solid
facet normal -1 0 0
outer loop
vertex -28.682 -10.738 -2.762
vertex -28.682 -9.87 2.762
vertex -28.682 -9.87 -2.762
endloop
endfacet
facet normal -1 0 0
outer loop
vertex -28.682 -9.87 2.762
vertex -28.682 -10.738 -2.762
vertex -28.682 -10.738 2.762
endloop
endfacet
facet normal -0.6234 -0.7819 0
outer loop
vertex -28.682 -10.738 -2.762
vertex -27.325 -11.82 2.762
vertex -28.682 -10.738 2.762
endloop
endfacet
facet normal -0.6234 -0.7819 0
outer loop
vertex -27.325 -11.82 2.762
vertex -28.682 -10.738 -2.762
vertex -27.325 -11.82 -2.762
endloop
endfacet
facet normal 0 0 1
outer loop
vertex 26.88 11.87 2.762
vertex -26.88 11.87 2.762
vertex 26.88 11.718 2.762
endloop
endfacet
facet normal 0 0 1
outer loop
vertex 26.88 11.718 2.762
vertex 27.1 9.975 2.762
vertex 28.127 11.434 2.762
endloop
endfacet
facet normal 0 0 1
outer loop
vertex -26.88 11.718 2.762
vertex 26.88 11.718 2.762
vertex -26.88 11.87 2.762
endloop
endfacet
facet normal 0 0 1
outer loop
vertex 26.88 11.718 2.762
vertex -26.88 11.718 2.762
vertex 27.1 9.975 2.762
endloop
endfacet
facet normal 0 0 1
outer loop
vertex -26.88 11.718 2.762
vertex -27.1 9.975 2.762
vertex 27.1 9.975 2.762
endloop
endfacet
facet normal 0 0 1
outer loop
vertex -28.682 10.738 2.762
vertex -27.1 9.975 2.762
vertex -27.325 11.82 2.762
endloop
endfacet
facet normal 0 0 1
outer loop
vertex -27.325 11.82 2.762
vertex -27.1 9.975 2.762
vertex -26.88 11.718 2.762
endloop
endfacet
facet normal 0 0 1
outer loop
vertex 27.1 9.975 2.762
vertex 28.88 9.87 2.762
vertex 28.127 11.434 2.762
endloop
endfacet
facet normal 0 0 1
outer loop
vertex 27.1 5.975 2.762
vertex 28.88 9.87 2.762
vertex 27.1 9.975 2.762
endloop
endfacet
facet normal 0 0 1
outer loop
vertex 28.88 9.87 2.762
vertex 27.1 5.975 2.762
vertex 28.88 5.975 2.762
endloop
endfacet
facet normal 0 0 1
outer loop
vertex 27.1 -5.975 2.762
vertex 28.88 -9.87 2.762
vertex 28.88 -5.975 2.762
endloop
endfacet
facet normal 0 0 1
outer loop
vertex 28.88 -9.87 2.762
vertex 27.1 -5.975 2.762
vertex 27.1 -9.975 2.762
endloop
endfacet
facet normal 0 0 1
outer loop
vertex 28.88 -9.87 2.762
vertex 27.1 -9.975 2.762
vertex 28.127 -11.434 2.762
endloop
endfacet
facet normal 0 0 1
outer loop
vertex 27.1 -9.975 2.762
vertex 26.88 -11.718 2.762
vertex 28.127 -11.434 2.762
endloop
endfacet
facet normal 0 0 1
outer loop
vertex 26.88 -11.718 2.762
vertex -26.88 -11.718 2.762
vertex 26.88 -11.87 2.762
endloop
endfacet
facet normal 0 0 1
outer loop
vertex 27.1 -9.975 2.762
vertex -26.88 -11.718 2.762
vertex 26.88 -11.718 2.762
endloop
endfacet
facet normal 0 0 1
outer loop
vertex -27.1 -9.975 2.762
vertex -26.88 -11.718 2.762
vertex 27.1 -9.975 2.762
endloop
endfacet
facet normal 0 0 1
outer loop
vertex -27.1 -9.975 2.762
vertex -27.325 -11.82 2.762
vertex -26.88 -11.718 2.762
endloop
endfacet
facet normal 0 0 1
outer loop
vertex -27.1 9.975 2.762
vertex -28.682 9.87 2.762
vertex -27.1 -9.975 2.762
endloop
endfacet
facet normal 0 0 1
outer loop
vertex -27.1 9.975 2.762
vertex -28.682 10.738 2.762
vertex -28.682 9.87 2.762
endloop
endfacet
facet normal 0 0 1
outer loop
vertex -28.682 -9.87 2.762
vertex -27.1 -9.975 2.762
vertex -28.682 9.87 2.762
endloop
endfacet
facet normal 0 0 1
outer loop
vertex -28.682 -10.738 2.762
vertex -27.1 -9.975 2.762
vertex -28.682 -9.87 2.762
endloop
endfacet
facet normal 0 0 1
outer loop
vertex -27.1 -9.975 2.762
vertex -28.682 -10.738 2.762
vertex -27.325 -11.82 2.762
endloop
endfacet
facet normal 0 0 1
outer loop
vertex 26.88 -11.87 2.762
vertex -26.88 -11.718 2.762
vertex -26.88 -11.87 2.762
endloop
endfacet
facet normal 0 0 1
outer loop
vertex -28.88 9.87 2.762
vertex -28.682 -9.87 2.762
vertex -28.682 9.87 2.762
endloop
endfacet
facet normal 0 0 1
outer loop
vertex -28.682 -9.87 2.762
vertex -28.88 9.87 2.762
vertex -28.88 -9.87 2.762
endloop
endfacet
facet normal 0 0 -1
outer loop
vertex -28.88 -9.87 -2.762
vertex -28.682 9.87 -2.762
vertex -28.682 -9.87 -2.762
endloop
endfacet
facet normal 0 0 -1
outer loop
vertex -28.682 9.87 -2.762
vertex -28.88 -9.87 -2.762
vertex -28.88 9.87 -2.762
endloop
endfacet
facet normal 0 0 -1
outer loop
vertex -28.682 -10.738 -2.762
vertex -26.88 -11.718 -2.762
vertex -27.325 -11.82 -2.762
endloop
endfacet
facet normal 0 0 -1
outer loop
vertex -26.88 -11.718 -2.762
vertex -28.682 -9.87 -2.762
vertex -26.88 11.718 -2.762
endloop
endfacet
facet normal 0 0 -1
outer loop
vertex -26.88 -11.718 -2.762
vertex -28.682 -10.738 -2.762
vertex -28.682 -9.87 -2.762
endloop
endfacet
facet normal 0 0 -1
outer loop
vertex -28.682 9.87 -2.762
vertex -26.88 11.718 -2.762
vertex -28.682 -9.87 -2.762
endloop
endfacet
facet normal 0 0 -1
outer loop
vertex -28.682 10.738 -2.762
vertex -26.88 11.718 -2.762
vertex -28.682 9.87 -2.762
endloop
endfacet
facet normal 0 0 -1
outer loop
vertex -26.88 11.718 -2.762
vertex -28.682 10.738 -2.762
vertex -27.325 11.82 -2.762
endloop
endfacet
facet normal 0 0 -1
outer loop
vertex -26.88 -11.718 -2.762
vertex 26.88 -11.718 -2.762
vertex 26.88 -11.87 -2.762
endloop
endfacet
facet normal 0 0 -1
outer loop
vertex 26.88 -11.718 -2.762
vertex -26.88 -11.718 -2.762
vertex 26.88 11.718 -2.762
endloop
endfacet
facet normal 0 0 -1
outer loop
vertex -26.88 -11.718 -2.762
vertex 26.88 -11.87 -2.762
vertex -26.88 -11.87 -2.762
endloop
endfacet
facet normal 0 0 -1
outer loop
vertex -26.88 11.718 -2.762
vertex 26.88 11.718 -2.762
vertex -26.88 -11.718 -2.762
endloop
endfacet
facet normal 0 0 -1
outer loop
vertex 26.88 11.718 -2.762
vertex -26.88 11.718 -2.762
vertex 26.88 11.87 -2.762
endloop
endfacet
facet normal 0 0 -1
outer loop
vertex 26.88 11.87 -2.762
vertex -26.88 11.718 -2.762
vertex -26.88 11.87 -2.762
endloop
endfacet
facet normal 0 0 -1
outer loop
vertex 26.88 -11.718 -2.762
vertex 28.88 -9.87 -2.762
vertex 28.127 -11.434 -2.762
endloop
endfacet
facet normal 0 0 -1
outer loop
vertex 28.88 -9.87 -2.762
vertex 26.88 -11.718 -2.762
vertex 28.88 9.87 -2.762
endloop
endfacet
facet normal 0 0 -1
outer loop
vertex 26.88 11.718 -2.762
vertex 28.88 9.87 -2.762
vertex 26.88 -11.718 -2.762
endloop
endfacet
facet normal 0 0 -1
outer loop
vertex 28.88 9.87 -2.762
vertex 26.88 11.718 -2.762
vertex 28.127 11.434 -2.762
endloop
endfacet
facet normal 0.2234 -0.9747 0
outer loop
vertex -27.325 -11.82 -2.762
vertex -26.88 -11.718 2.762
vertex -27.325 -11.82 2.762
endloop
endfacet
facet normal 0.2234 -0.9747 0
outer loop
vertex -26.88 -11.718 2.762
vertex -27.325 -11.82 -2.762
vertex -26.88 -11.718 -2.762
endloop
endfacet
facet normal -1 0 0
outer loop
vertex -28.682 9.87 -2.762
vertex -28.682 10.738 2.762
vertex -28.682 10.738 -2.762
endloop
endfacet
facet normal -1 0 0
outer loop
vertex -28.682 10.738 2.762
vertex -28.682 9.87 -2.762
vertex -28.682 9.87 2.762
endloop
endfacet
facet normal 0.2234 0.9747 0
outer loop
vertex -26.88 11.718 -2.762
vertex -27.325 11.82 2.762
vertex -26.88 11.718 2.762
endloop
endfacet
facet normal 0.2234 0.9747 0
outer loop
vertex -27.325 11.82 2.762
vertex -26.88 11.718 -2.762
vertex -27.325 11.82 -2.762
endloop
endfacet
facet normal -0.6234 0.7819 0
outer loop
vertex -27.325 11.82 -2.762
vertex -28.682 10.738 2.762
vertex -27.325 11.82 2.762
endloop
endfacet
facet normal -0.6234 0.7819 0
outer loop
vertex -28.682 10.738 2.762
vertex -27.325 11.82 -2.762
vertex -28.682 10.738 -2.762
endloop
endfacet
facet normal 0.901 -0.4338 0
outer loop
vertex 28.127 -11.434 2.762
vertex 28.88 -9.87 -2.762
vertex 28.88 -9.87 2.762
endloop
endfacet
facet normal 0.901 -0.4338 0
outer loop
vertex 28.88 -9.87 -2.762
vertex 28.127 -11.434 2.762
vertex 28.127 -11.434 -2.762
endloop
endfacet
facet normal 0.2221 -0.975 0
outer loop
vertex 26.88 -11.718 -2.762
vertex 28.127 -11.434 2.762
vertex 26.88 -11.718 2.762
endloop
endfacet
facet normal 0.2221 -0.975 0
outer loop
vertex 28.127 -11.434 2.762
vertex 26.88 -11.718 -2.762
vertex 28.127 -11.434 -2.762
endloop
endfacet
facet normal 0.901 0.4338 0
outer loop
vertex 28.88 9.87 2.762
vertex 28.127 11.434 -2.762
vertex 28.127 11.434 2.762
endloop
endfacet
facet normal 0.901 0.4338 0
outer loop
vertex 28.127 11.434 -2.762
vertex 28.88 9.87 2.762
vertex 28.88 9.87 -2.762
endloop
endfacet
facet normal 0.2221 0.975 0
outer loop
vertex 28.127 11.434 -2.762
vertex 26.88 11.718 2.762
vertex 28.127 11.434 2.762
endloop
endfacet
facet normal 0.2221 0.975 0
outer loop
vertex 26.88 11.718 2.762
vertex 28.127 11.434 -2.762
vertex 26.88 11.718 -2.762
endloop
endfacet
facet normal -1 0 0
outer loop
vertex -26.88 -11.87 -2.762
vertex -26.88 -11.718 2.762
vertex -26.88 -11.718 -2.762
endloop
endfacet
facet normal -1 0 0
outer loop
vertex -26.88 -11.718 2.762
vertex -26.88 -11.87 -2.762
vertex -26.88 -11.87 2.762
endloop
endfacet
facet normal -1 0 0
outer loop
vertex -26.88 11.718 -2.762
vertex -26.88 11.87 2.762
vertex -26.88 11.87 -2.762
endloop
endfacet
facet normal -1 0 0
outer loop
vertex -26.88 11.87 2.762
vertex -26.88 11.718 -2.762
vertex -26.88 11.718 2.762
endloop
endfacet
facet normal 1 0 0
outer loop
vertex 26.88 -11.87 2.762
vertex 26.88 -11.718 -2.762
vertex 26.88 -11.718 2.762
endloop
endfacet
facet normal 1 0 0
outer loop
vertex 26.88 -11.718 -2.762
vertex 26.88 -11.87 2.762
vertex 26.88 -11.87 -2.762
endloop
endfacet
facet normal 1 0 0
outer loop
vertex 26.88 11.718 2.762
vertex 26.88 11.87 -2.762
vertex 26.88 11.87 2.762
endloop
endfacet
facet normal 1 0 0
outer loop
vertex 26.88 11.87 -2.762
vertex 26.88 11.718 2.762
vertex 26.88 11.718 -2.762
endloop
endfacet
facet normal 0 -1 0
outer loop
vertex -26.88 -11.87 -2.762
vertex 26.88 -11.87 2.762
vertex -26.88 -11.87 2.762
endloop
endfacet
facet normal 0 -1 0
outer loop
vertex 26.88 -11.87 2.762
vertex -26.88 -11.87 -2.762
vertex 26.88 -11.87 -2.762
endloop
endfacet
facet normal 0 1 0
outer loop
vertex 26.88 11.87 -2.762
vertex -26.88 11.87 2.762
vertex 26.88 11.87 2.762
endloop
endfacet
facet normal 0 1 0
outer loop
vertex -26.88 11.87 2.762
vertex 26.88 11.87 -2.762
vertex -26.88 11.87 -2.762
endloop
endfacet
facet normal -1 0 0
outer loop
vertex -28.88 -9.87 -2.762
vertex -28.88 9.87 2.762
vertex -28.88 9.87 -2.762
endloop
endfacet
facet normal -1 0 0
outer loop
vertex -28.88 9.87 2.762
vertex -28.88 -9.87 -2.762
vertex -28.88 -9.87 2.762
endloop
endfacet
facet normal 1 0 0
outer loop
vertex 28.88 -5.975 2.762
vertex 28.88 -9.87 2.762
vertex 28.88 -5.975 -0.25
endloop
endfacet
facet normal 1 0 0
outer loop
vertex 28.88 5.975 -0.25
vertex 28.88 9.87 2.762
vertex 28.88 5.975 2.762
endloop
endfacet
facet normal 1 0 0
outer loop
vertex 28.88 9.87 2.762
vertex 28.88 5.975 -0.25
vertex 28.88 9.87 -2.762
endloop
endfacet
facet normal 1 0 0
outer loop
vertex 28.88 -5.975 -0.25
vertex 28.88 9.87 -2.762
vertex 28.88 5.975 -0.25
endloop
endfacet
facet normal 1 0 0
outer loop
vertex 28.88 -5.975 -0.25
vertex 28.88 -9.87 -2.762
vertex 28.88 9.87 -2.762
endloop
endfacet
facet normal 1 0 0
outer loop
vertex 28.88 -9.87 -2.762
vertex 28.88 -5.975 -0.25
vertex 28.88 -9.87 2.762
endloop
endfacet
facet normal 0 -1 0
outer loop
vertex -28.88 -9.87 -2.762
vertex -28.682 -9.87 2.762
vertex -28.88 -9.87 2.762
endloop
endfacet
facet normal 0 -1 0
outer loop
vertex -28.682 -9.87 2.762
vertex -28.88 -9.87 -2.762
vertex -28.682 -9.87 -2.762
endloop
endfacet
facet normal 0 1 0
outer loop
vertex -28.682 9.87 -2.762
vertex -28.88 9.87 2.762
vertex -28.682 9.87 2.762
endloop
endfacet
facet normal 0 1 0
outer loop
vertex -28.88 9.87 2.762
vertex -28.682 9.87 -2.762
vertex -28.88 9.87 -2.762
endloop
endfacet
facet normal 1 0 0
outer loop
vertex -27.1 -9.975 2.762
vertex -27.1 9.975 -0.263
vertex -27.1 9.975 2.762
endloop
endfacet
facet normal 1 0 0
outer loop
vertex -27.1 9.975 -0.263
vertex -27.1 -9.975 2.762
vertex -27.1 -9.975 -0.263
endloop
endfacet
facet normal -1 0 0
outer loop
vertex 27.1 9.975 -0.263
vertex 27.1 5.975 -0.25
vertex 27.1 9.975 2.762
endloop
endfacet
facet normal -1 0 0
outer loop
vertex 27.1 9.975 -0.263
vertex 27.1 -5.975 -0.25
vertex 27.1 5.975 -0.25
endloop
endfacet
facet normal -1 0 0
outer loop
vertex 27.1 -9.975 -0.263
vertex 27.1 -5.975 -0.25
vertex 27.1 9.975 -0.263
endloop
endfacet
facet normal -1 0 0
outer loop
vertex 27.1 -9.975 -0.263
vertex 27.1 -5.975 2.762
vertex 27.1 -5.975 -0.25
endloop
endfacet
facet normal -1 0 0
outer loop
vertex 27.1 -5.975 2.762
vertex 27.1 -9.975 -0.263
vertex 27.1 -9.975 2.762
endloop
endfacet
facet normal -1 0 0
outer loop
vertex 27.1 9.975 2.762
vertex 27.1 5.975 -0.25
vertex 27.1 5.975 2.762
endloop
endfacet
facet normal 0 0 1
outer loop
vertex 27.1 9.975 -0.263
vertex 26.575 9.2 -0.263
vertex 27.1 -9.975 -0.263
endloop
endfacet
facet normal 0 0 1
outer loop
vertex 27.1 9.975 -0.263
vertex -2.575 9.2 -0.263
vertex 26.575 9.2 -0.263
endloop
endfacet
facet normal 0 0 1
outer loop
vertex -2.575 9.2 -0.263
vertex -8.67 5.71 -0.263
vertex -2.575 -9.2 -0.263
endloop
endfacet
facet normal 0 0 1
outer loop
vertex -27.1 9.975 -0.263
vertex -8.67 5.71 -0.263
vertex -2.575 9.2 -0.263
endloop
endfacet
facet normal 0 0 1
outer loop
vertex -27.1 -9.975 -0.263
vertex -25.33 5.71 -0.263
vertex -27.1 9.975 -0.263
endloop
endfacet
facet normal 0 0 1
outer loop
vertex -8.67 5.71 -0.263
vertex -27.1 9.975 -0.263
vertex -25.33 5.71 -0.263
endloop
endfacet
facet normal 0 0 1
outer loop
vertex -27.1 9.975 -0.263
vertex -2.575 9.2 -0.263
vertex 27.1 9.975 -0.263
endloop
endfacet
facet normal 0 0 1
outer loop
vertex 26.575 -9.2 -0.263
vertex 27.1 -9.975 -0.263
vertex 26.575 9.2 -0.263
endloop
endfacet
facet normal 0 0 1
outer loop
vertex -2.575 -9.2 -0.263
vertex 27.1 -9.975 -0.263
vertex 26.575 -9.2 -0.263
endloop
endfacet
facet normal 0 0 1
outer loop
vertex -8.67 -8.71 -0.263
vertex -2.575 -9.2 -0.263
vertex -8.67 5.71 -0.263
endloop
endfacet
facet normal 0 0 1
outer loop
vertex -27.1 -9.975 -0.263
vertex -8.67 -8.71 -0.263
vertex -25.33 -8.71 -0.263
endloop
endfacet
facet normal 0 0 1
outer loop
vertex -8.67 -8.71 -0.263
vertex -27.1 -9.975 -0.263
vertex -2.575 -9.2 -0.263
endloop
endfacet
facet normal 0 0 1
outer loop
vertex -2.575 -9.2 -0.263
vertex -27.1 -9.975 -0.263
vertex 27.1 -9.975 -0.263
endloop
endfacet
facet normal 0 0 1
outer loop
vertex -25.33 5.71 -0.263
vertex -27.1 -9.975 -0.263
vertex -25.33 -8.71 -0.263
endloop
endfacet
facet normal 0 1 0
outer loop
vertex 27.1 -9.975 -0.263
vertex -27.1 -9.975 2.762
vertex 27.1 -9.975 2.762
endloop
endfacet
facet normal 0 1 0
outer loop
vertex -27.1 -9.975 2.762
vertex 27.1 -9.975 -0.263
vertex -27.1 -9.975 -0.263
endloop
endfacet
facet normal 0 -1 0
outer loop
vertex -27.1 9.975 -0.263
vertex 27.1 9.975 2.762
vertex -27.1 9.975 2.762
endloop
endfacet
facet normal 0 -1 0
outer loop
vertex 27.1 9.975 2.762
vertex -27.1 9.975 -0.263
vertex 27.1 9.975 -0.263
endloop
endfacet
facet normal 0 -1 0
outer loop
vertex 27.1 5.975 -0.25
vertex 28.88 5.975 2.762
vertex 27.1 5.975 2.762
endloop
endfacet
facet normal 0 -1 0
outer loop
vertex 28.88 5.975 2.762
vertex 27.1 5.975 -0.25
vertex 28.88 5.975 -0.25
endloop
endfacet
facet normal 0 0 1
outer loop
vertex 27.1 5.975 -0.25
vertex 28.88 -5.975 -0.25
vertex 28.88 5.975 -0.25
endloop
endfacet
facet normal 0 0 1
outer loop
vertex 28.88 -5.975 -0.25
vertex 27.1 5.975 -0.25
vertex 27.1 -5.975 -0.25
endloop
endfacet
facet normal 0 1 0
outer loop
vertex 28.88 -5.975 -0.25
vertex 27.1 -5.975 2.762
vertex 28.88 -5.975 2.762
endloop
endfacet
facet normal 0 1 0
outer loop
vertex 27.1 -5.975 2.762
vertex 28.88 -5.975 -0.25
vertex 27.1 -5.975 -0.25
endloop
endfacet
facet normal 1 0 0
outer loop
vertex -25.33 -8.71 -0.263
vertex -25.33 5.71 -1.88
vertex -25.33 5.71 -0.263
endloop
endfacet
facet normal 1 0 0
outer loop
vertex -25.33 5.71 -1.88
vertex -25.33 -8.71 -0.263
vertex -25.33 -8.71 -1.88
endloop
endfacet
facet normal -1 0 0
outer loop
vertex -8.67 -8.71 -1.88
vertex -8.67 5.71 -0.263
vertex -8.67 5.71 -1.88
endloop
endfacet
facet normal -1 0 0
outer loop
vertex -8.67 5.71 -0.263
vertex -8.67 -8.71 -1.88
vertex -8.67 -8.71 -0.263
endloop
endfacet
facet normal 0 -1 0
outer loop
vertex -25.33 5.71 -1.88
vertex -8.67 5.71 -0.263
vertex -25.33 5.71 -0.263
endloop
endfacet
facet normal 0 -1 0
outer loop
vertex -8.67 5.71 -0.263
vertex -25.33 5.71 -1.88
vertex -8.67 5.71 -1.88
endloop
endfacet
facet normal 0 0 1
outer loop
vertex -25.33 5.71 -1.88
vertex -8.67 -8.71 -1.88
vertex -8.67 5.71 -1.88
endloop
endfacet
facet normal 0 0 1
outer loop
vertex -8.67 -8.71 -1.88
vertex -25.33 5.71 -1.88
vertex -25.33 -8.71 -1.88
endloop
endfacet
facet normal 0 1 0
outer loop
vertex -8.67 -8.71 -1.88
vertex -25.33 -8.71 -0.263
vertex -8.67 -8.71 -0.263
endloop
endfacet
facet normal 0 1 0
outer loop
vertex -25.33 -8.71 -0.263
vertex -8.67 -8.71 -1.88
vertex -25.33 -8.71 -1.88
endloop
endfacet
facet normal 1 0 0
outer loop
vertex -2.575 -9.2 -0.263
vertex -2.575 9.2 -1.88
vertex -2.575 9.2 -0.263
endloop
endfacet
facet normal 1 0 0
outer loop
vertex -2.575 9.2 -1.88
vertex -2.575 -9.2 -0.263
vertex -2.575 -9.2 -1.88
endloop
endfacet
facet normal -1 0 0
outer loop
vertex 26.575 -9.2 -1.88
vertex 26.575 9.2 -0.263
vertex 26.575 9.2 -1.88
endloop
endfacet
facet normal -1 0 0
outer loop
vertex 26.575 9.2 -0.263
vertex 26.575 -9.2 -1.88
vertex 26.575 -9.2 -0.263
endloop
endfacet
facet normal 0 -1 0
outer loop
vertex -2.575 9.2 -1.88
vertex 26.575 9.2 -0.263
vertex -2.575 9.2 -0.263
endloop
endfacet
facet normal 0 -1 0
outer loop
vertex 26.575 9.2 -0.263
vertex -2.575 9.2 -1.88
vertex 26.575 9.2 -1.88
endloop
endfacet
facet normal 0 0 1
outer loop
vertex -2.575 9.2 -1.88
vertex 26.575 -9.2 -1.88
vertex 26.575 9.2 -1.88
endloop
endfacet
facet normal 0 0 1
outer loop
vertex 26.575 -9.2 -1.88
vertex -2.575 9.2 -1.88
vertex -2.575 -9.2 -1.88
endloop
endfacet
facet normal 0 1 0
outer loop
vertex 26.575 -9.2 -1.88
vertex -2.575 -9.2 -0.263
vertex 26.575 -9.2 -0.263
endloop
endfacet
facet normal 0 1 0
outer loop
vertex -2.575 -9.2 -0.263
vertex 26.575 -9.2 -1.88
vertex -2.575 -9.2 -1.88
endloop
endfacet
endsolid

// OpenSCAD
use <MCAD/boxes.scad>

// Using MM as units

// Length, Width, Height
mainBox=[57.760, 23.74, 5.525];
// Y is offset wrong, possibly because of my printer
// 19.85 comes out to 19.19
insideBox=[54.20, 19.95, 8.526];
usbBox=[59, 11.95, 10.5];
sdBox=[16.66, 14.42, 1.88 * 2];
compBox=[29.15, 18.4, 1.88 * 2];

difference() {
    roundedBox(mainBox, 2, true);
    translate([0,0,4]) {
        cube(insideBox, true);
    }
    translate([5,0,5]) {
        cube(usbBox, true);
    }
    translate([-17,-1.5,0]) {
        cube(sdBox, true);
    }
    translate([12,0,0]) {
        cube(compBox, true);
    }
}
